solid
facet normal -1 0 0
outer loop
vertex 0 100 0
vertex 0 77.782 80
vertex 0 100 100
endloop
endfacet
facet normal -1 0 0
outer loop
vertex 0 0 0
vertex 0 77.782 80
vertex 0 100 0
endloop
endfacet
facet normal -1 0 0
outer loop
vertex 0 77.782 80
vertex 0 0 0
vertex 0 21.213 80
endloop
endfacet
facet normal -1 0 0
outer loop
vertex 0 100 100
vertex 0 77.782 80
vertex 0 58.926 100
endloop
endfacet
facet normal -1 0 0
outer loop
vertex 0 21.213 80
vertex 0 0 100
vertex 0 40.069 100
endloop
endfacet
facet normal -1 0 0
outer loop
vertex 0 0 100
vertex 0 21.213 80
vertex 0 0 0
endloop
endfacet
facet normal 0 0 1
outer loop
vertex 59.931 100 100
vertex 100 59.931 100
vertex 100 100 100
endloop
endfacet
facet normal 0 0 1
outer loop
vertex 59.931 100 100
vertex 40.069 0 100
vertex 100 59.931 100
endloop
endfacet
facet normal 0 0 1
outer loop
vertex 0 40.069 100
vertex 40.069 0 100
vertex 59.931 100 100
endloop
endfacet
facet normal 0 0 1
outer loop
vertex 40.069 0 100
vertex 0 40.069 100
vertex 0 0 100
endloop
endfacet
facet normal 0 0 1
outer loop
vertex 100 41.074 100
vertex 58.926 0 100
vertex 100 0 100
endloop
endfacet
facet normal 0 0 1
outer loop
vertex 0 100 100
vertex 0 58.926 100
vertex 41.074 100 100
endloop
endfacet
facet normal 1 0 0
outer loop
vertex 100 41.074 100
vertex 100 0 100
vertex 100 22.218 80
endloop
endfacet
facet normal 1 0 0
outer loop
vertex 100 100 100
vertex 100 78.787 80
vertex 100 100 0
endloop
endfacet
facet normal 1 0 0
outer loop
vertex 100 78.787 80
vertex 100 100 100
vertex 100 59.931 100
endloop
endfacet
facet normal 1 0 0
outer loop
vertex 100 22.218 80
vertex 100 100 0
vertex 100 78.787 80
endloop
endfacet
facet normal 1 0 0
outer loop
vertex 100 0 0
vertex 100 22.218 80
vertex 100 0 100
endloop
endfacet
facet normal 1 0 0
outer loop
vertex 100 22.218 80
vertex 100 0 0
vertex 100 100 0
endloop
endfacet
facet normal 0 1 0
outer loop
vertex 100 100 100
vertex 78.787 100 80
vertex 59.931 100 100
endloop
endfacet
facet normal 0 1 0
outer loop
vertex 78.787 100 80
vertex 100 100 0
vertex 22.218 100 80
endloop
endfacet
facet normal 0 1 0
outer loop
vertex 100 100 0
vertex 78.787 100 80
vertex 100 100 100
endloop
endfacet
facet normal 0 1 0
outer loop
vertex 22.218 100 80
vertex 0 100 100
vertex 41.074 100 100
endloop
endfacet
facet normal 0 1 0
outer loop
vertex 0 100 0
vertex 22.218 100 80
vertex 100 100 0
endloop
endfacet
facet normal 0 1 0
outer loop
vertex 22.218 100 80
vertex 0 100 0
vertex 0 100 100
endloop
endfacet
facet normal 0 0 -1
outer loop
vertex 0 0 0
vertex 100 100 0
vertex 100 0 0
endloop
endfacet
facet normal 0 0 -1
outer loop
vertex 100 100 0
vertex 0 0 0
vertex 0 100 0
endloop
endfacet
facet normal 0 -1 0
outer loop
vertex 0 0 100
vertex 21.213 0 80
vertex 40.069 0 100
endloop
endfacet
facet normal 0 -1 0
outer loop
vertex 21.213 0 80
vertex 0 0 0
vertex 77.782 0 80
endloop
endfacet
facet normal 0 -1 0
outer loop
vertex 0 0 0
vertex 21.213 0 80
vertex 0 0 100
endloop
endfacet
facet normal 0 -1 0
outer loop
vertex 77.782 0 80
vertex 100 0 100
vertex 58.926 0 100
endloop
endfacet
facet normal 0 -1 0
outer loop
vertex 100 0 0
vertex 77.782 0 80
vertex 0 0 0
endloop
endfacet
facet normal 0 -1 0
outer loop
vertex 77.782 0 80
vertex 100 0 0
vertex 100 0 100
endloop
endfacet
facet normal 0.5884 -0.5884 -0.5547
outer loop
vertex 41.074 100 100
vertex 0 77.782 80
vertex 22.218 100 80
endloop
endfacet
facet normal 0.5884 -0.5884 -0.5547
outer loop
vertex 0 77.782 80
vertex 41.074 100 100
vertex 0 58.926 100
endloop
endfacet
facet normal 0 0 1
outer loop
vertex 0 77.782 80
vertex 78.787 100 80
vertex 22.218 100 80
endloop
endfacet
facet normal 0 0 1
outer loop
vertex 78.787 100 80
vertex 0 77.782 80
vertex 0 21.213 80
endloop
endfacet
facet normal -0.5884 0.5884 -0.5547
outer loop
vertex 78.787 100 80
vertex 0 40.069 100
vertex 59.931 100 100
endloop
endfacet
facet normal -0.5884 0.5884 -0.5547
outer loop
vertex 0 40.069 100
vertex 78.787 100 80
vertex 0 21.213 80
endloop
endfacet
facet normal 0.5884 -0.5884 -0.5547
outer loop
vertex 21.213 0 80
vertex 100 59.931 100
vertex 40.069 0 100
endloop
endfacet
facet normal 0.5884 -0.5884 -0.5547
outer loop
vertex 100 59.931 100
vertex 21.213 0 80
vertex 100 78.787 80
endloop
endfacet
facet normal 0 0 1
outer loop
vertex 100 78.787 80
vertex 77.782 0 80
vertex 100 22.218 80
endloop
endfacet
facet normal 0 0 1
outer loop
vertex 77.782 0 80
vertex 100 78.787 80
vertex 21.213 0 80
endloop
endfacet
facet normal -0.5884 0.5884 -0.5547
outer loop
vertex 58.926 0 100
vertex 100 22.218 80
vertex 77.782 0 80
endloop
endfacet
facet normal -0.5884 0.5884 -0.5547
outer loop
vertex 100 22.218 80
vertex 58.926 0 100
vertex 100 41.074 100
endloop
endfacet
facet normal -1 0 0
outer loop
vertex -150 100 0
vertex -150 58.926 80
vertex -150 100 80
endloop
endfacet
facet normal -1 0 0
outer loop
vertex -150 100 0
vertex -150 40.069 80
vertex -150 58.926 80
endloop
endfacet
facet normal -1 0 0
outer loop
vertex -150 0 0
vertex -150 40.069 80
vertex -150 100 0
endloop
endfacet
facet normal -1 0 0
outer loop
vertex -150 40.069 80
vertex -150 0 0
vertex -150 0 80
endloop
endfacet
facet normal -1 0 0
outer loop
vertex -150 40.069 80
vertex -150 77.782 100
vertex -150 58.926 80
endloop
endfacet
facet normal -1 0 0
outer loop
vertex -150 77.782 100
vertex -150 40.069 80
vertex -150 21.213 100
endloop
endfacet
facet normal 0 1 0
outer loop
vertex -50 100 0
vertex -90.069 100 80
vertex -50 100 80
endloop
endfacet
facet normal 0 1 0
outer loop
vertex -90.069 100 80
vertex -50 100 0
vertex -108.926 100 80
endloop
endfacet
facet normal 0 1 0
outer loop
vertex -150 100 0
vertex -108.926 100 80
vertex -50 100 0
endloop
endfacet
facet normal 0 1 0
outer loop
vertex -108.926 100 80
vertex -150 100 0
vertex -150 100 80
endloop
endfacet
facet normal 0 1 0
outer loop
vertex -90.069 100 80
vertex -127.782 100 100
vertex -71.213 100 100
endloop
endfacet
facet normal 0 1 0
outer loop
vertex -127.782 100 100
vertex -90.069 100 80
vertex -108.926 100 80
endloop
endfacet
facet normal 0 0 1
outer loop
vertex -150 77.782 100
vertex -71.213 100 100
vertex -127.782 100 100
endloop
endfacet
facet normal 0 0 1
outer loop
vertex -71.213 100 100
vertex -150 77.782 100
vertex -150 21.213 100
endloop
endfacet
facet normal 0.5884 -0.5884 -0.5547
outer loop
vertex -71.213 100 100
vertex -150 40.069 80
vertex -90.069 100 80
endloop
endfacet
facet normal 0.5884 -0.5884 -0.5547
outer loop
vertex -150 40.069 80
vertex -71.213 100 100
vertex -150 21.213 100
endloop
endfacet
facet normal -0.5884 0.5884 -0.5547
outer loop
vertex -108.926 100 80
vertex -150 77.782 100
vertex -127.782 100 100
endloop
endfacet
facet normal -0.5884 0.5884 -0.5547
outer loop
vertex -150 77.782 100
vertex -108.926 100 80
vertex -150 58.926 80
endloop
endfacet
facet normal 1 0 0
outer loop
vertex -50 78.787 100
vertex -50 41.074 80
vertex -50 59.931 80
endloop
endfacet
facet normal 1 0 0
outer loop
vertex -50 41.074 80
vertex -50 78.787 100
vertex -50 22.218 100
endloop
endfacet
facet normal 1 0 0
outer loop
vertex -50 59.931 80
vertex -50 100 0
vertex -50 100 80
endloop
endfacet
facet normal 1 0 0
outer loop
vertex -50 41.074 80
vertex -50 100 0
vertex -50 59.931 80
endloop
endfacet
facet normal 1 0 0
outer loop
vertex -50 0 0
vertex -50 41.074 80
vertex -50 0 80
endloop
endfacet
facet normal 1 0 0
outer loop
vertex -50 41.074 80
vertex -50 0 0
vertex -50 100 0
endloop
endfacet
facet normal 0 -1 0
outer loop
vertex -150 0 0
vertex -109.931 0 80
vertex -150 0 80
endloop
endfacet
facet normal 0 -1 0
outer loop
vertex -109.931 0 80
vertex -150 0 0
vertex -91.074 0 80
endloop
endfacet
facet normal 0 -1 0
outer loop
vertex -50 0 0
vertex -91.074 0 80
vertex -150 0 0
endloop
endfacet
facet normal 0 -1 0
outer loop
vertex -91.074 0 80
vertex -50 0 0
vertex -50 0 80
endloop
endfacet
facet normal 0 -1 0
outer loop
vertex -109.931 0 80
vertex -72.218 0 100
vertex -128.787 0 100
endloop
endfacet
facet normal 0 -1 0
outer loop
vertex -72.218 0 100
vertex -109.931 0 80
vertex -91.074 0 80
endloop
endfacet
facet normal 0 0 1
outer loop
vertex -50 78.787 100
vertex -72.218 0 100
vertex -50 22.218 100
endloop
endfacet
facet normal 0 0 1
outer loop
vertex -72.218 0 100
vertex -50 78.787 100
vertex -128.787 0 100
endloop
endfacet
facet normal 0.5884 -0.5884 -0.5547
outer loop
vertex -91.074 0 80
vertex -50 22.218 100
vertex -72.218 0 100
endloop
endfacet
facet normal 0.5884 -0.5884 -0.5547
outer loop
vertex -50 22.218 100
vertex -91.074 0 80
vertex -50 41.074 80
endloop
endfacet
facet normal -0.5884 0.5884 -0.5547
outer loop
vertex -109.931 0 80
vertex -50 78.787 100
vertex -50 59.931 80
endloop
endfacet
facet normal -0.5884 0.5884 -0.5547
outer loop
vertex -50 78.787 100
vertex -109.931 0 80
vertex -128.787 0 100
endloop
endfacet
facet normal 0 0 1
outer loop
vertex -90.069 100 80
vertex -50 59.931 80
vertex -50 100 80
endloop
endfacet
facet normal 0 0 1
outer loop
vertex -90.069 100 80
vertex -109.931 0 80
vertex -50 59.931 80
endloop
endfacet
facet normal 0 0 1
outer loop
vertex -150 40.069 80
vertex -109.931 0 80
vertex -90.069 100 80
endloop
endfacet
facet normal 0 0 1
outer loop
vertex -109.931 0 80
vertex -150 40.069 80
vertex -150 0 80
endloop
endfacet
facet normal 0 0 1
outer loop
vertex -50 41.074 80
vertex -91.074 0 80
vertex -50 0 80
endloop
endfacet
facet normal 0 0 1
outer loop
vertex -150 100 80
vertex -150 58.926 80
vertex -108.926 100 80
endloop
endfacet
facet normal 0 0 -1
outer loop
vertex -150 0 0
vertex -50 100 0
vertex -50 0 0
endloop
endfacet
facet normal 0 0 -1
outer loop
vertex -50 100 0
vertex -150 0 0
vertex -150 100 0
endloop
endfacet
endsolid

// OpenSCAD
module cutout(h=300) {
    rotate([90,0,90])
    linear_extrude(height=h) {
        polygon(points=[[0,0], [40,0], [20,30]]);
    }
}

module bottompiece() {
    difference() {
        cube(100);
        rotate([0,0,45]) translate([0,15,80]) cutout();
        rotate([0,0,45]) translate([0,-55,80]) cutout();
    }
}

module topthing() {
    cube([100,100,80]);
    intersection() {
        cube(100);
        rotate([0,0,45]) translate([0,55,100]) rotate([180,0,0]) cutout();
    }
    intersection() {
        cube(100);
        rotate([0,0,45]) translate([0,-15,100]) rotate([180,0,0]) cutout();
    }
}

bottompiece();
translate([-150,0,0]) topthing();
